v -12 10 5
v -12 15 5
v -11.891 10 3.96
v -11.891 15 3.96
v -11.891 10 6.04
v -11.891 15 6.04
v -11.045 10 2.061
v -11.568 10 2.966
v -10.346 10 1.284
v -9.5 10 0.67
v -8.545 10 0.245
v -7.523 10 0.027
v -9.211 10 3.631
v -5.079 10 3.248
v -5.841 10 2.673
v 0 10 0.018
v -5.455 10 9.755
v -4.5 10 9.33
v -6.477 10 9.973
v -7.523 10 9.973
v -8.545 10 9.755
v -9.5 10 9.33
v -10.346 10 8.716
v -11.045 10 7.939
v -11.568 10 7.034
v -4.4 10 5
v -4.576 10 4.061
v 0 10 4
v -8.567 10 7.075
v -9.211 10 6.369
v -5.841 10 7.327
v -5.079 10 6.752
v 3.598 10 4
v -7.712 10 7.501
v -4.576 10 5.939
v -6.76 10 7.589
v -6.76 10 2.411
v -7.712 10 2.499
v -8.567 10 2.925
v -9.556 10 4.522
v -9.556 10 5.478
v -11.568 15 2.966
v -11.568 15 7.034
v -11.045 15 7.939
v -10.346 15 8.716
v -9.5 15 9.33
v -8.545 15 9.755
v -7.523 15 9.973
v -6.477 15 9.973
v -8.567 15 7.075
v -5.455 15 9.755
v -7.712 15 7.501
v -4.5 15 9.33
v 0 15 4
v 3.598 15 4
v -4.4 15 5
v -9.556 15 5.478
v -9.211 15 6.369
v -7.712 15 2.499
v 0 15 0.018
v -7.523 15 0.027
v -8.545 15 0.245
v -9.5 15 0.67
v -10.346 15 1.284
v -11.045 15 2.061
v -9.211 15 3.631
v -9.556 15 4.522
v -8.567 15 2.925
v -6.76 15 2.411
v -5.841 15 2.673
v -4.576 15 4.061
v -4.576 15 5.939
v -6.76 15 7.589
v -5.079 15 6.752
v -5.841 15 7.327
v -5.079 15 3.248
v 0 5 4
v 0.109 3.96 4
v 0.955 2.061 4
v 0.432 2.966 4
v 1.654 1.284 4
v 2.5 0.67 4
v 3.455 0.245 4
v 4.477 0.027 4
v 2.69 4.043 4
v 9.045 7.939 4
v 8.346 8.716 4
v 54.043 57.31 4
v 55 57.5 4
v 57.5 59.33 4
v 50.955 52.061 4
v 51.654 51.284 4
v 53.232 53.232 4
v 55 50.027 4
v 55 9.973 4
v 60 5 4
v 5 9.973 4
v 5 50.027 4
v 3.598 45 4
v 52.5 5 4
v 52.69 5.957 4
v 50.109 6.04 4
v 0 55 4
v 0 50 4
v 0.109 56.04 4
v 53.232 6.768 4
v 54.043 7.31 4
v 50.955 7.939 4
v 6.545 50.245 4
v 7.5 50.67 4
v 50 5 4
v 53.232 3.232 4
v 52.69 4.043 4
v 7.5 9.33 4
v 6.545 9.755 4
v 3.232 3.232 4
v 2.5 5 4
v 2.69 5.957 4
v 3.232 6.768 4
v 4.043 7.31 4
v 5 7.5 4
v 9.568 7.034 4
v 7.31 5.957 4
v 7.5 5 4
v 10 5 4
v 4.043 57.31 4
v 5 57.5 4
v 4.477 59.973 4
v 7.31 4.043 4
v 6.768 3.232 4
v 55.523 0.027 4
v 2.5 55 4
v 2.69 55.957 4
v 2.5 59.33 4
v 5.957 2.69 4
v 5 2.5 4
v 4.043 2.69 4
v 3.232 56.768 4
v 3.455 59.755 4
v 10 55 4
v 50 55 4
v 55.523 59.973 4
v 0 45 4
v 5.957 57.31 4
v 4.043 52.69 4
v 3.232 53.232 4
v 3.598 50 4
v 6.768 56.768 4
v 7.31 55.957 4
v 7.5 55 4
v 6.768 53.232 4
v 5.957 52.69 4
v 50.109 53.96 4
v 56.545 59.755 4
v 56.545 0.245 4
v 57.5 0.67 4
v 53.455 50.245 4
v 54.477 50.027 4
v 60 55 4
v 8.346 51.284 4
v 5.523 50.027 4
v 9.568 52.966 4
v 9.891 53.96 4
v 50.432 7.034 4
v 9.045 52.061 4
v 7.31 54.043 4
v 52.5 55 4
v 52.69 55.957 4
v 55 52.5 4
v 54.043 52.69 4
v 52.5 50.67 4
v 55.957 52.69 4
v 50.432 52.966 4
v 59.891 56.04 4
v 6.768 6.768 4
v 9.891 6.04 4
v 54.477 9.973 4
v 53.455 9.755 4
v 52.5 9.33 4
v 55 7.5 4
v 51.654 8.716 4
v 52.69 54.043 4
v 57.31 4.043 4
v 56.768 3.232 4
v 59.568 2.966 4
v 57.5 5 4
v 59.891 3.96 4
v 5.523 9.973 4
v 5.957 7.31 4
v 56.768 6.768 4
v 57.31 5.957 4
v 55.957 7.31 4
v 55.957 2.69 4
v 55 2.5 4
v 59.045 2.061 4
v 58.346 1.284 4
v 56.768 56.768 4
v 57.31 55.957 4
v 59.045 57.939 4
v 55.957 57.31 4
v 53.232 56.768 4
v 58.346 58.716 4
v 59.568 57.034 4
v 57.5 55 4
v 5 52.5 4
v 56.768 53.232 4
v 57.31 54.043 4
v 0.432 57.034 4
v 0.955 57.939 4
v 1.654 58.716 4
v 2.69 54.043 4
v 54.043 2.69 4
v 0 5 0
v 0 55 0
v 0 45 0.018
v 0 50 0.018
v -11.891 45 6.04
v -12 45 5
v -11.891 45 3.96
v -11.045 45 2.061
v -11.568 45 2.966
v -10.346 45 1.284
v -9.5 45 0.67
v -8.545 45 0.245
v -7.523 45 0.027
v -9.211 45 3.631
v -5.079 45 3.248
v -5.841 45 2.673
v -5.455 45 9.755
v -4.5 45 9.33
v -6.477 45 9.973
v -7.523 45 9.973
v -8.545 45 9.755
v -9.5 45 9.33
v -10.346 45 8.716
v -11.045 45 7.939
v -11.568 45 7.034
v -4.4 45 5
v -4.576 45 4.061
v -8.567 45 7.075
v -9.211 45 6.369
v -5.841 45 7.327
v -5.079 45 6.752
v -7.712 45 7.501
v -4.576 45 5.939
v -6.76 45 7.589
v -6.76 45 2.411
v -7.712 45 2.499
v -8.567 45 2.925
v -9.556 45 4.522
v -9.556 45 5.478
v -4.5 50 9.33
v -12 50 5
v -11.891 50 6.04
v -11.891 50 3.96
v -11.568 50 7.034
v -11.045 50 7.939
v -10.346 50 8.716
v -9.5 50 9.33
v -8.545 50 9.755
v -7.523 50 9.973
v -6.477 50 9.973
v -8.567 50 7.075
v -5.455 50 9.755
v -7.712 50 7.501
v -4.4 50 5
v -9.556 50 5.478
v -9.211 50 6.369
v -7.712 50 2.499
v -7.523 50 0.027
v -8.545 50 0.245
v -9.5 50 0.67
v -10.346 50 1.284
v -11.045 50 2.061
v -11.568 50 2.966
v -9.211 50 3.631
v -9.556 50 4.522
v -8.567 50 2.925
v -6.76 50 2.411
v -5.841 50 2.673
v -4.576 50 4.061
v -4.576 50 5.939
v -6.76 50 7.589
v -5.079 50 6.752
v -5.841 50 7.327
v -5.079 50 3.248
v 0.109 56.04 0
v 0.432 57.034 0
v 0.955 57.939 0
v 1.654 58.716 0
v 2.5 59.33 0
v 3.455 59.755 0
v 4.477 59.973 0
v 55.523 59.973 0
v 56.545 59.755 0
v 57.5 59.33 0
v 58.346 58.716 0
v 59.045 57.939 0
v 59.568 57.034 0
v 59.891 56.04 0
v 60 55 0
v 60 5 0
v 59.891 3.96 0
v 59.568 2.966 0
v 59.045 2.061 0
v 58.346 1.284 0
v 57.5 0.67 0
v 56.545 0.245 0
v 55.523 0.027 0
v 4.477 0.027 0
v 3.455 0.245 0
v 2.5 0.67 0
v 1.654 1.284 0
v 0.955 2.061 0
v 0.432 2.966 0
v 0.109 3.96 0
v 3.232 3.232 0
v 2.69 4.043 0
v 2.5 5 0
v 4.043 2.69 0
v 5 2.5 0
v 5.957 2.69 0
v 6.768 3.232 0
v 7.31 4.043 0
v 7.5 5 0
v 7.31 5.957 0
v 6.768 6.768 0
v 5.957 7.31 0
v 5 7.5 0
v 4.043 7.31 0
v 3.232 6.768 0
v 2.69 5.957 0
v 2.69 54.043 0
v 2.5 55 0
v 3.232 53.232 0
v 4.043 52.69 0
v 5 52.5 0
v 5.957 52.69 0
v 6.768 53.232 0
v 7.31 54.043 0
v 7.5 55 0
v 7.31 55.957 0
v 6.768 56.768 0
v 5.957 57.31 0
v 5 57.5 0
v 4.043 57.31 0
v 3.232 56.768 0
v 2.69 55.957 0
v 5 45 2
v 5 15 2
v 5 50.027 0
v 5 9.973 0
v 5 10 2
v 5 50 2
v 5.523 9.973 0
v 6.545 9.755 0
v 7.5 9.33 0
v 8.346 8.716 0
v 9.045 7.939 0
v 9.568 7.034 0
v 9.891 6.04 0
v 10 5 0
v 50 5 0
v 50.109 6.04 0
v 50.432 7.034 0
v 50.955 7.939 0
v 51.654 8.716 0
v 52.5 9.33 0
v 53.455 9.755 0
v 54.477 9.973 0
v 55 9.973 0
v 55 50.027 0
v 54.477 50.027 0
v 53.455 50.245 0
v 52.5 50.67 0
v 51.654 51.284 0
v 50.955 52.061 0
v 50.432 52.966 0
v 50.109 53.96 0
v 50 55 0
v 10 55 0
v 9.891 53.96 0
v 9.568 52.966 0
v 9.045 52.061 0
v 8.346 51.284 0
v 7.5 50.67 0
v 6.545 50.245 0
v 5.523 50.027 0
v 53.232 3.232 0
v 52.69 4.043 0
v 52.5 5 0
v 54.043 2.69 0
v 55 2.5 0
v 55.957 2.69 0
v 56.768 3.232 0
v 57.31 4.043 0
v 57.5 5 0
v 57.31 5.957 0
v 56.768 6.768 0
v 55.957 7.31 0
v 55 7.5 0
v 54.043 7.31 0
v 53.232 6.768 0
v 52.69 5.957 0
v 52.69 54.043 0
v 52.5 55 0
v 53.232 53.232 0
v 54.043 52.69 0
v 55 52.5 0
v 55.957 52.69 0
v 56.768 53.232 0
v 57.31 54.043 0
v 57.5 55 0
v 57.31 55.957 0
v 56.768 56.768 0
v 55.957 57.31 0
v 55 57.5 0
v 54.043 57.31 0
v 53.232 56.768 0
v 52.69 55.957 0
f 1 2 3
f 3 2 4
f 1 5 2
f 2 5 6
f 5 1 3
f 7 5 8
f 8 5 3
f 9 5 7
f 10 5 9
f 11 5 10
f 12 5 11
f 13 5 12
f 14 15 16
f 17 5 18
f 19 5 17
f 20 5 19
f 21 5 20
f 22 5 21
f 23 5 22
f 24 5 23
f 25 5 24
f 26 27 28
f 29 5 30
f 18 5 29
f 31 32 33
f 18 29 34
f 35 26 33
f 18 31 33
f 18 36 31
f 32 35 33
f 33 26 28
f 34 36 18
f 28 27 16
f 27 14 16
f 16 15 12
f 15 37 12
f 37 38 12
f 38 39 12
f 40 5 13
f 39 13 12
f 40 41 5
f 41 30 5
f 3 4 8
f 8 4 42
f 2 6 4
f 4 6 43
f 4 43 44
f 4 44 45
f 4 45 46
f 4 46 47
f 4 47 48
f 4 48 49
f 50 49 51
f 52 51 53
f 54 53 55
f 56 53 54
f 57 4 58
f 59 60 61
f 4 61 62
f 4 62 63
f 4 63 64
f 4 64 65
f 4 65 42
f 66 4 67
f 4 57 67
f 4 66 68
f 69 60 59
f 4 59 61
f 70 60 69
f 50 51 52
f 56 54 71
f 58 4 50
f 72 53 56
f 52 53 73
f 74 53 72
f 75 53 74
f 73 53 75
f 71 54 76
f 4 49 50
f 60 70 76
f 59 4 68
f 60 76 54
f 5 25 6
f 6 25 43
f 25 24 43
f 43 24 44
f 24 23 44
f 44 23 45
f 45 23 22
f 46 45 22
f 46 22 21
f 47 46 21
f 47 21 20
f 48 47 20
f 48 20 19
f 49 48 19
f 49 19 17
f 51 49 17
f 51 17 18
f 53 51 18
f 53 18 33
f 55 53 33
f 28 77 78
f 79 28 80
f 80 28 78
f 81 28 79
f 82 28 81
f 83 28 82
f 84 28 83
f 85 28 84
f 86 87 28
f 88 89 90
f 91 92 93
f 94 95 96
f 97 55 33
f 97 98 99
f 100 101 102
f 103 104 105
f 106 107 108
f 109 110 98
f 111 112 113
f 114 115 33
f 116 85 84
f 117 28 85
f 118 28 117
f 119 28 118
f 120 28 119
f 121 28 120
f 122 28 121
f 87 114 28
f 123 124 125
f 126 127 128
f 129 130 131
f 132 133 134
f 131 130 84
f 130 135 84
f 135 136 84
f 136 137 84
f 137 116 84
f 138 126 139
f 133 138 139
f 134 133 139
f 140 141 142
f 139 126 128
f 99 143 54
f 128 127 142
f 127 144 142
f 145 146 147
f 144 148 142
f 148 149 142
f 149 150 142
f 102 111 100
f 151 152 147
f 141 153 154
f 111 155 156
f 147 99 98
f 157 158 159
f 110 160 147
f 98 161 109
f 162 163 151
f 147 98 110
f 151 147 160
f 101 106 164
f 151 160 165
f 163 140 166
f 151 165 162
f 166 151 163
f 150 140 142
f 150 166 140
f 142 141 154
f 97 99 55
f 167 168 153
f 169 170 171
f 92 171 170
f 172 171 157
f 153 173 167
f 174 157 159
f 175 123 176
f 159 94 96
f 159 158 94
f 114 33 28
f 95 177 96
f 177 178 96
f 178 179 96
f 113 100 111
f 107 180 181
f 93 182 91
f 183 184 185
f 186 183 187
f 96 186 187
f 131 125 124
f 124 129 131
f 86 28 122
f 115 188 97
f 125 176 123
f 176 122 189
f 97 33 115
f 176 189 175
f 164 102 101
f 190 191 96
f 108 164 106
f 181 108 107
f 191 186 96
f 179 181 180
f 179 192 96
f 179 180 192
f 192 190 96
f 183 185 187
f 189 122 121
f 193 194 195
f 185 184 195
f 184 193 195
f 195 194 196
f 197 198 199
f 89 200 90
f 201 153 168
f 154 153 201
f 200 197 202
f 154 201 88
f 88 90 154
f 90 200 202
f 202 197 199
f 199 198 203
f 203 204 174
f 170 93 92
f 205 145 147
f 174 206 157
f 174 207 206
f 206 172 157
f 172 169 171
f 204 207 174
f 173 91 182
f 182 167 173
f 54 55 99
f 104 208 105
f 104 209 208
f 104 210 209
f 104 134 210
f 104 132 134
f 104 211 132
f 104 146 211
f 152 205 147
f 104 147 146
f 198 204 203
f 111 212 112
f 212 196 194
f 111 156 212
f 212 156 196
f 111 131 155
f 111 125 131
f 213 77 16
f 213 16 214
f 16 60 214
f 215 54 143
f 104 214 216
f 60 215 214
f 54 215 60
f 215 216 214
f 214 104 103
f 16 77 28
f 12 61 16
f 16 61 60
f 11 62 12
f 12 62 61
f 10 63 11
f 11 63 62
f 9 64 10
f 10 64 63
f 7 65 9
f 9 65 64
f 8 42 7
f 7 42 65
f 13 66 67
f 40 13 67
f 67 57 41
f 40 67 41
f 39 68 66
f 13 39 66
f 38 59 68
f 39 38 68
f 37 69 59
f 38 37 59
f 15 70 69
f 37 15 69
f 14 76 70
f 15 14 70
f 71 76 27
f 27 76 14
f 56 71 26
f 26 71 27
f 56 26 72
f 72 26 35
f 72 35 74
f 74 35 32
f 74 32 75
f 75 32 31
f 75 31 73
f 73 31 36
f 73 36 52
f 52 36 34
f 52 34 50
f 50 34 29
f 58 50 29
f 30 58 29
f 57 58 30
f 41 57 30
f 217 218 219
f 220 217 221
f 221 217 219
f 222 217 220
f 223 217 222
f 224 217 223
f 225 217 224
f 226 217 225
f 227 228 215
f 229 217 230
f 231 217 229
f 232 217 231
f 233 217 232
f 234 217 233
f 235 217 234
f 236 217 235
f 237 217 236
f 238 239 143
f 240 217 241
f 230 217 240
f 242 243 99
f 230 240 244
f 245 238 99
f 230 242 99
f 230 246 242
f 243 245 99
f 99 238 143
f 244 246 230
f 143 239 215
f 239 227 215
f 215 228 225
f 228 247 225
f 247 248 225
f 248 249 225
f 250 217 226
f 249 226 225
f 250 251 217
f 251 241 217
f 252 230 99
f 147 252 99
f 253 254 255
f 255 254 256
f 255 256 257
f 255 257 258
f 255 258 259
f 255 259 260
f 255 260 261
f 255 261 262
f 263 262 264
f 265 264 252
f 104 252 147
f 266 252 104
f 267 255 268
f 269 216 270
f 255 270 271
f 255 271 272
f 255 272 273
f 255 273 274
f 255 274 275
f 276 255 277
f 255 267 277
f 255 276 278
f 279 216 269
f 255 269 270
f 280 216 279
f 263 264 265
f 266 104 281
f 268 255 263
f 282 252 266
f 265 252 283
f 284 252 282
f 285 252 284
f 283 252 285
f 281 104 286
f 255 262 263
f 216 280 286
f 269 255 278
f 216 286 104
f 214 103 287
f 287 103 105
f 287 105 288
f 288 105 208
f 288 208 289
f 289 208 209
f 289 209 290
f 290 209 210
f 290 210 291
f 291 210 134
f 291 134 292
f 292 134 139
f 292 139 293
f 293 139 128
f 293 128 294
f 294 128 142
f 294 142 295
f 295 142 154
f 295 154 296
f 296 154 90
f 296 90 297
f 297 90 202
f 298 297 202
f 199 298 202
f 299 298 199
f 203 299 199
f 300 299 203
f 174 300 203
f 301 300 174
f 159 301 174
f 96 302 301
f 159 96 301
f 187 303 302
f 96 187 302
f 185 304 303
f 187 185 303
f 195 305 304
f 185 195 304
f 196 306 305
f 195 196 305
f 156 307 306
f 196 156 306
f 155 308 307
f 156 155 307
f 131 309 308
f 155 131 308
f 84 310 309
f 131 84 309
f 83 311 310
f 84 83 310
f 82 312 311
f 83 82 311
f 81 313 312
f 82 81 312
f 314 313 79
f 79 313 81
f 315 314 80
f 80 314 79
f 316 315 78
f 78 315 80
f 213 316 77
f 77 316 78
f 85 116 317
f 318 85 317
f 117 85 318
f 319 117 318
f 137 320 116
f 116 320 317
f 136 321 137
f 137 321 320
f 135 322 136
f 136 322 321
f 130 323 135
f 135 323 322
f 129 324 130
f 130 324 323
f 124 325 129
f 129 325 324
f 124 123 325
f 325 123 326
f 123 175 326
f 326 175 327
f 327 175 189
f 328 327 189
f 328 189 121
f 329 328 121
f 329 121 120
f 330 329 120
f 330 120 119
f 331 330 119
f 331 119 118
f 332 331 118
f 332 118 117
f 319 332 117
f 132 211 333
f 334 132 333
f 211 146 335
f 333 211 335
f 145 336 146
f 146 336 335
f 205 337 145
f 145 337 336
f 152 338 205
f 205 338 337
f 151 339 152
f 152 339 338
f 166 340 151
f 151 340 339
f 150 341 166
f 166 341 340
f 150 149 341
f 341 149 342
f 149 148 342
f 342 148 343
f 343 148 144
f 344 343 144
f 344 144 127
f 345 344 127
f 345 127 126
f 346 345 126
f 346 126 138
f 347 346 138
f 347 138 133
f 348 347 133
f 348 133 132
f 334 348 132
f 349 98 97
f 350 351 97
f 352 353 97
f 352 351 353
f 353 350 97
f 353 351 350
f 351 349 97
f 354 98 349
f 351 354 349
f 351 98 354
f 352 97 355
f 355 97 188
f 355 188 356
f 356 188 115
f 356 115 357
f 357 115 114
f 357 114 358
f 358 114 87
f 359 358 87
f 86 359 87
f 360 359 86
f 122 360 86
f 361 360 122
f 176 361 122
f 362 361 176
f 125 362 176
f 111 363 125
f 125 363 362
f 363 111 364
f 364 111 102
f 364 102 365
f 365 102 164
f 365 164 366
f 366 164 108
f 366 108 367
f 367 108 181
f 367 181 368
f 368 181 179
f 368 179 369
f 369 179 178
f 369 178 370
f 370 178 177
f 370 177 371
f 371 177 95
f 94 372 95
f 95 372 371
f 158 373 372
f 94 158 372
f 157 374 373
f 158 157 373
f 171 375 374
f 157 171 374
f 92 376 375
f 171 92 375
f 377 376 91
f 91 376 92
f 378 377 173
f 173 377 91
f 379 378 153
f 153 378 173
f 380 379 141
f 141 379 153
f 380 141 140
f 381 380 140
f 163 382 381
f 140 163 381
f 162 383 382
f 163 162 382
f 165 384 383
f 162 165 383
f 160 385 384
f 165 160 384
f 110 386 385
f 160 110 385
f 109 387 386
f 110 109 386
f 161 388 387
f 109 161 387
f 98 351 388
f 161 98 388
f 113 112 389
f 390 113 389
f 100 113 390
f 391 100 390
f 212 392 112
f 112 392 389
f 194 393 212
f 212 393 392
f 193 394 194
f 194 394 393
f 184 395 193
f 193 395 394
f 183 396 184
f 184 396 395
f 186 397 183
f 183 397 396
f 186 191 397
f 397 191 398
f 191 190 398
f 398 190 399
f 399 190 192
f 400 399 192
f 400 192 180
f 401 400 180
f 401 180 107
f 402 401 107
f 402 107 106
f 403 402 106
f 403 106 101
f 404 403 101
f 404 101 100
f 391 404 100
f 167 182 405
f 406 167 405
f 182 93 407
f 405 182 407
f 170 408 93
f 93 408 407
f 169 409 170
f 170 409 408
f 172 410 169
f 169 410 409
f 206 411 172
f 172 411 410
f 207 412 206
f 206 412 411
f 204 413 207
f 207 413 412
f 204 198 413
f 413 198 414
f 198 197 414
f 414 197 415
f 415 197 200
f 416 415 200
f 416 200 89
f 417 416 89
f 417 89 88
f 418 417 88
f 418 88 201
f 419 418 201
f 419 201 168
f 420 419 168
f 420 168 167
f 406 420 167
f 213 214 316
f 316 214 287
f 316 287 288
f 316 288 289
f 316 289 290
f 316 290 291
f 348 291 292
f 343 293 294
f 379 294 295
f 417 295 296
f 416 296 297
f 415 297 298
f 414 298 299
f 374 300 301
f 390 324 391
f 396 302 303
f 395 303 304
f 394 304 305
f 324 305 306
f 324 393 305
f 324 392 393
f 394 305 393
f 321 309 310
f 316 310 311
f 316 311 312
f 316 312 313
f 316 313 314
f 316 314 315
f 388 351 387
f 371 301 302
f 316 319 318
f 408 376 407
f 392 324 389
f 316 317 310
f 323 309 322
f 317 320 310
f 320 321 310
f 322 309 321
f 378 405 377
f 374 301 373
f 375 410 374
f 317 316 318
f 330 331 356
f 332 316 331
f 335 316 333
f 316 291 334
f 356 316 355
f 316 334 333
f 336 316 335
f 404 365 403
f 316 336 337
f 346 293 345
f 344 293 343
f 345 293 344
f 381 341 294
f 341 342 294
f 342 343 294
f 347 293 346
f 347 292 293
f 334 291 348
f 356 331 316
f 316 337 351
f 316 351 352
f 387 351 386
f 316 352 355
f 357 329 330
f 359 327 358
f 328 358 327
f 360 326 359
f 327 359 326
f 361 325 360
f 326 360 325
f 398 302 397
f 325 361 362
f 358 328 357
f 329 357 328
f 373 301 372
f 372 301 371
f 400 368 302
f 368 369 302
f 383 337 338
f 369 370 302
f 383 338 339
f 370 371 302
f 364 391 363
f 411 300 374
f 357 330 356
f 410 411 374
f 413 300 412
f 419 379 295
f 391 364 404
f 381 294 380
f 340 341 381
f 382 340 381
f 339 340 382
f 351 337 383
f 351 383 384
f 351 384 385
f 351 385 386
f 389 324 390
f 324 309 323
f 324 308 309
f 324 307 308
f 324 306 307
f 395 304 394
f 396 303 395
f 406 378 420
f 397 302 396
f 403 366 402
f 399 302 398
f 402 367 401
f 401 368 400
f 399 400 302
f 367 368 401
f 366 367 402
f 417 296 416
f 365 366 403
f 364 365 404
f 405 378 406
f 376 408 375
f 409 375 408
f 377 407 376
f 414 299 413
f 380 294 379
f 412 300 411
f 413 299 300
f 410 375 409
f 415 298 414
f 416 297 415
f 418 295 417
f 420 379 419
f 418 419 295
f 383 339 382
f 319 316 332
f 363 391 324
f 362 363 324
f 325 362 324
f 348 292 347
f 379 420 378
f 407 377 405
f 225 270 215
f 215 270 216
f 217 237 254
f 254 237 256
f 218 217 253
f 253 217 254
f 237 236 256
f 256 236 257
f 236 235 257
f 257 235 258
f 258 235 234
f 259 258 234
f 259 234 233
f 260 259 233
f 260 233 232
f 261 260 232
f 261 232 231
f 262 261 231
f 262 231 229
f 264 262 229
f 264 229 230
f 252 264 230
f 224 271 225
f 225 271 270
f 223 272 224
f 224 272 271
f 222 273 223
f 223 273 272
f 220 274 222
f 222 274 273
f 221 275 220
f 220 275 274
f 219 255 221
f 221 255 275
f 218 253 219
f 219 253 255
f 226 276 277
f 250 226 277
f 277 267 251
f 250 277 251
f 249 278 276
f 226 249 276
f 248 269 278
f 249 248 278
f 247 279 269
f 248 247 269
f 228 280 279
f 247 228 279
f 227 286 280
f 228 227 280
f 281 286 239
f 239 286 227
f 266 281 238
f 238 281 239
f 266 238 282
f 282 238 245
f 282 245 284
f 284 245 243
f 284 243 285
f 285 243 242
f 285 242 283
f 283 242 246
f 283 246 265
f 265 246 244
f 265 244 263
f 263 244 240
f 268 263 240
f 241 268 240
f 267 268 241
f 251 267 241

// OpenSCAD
$fs=1;

module holes(){
	translate([5,5,-3])cylinder(10,r=2.5);
	translate([55,5,-3])cylinder(10,r=2.5);
	translate([5,55,-3])cylinder(10,r=2.5);
	translate([55,55,-3])cylinder(10,r=2.5);
}

module plate(){
//	translate([5,5,0])cylinder(4,r=5);
//	translate([55,5,0])cylinder(4,r=5);
//	translate([5,55,0])cylinder(4,r=5);
//	translate([55,55,0])cylinder(4,r=5);
	difference(){
		translate([5,5,0]) minkowski(){ 
			cube([50,50,3]);	
			cylinder(1,r=5);
		}

		translate([5,5,-3])
			difference(){
				cube([50,50,10]);
				translate([0,0,-3])cylinder(10,r=5);
				translate([50,0,-3])cylinder(10,r=5);
				translate([0,50,-3])cylinder(10,r=5);
				translate([50,50,-3])cylinder(10,r=5);
			}
	}
}

module lug(){
	rotate([90,0,0]) difference(){
		hull(){ 
			//cube([10,0,3]);	
			cylinder(5,r=5);
			translate([10,-3,0])cylinder(5,r=2);
		}
		translate([0,0,-3])cylinder(10,r=2.6);
	}
	

}

difference (){
	plate();
	holes();
}

translate ([-7,15,5]) lug();
translate ([-7,50,5]) lug();
